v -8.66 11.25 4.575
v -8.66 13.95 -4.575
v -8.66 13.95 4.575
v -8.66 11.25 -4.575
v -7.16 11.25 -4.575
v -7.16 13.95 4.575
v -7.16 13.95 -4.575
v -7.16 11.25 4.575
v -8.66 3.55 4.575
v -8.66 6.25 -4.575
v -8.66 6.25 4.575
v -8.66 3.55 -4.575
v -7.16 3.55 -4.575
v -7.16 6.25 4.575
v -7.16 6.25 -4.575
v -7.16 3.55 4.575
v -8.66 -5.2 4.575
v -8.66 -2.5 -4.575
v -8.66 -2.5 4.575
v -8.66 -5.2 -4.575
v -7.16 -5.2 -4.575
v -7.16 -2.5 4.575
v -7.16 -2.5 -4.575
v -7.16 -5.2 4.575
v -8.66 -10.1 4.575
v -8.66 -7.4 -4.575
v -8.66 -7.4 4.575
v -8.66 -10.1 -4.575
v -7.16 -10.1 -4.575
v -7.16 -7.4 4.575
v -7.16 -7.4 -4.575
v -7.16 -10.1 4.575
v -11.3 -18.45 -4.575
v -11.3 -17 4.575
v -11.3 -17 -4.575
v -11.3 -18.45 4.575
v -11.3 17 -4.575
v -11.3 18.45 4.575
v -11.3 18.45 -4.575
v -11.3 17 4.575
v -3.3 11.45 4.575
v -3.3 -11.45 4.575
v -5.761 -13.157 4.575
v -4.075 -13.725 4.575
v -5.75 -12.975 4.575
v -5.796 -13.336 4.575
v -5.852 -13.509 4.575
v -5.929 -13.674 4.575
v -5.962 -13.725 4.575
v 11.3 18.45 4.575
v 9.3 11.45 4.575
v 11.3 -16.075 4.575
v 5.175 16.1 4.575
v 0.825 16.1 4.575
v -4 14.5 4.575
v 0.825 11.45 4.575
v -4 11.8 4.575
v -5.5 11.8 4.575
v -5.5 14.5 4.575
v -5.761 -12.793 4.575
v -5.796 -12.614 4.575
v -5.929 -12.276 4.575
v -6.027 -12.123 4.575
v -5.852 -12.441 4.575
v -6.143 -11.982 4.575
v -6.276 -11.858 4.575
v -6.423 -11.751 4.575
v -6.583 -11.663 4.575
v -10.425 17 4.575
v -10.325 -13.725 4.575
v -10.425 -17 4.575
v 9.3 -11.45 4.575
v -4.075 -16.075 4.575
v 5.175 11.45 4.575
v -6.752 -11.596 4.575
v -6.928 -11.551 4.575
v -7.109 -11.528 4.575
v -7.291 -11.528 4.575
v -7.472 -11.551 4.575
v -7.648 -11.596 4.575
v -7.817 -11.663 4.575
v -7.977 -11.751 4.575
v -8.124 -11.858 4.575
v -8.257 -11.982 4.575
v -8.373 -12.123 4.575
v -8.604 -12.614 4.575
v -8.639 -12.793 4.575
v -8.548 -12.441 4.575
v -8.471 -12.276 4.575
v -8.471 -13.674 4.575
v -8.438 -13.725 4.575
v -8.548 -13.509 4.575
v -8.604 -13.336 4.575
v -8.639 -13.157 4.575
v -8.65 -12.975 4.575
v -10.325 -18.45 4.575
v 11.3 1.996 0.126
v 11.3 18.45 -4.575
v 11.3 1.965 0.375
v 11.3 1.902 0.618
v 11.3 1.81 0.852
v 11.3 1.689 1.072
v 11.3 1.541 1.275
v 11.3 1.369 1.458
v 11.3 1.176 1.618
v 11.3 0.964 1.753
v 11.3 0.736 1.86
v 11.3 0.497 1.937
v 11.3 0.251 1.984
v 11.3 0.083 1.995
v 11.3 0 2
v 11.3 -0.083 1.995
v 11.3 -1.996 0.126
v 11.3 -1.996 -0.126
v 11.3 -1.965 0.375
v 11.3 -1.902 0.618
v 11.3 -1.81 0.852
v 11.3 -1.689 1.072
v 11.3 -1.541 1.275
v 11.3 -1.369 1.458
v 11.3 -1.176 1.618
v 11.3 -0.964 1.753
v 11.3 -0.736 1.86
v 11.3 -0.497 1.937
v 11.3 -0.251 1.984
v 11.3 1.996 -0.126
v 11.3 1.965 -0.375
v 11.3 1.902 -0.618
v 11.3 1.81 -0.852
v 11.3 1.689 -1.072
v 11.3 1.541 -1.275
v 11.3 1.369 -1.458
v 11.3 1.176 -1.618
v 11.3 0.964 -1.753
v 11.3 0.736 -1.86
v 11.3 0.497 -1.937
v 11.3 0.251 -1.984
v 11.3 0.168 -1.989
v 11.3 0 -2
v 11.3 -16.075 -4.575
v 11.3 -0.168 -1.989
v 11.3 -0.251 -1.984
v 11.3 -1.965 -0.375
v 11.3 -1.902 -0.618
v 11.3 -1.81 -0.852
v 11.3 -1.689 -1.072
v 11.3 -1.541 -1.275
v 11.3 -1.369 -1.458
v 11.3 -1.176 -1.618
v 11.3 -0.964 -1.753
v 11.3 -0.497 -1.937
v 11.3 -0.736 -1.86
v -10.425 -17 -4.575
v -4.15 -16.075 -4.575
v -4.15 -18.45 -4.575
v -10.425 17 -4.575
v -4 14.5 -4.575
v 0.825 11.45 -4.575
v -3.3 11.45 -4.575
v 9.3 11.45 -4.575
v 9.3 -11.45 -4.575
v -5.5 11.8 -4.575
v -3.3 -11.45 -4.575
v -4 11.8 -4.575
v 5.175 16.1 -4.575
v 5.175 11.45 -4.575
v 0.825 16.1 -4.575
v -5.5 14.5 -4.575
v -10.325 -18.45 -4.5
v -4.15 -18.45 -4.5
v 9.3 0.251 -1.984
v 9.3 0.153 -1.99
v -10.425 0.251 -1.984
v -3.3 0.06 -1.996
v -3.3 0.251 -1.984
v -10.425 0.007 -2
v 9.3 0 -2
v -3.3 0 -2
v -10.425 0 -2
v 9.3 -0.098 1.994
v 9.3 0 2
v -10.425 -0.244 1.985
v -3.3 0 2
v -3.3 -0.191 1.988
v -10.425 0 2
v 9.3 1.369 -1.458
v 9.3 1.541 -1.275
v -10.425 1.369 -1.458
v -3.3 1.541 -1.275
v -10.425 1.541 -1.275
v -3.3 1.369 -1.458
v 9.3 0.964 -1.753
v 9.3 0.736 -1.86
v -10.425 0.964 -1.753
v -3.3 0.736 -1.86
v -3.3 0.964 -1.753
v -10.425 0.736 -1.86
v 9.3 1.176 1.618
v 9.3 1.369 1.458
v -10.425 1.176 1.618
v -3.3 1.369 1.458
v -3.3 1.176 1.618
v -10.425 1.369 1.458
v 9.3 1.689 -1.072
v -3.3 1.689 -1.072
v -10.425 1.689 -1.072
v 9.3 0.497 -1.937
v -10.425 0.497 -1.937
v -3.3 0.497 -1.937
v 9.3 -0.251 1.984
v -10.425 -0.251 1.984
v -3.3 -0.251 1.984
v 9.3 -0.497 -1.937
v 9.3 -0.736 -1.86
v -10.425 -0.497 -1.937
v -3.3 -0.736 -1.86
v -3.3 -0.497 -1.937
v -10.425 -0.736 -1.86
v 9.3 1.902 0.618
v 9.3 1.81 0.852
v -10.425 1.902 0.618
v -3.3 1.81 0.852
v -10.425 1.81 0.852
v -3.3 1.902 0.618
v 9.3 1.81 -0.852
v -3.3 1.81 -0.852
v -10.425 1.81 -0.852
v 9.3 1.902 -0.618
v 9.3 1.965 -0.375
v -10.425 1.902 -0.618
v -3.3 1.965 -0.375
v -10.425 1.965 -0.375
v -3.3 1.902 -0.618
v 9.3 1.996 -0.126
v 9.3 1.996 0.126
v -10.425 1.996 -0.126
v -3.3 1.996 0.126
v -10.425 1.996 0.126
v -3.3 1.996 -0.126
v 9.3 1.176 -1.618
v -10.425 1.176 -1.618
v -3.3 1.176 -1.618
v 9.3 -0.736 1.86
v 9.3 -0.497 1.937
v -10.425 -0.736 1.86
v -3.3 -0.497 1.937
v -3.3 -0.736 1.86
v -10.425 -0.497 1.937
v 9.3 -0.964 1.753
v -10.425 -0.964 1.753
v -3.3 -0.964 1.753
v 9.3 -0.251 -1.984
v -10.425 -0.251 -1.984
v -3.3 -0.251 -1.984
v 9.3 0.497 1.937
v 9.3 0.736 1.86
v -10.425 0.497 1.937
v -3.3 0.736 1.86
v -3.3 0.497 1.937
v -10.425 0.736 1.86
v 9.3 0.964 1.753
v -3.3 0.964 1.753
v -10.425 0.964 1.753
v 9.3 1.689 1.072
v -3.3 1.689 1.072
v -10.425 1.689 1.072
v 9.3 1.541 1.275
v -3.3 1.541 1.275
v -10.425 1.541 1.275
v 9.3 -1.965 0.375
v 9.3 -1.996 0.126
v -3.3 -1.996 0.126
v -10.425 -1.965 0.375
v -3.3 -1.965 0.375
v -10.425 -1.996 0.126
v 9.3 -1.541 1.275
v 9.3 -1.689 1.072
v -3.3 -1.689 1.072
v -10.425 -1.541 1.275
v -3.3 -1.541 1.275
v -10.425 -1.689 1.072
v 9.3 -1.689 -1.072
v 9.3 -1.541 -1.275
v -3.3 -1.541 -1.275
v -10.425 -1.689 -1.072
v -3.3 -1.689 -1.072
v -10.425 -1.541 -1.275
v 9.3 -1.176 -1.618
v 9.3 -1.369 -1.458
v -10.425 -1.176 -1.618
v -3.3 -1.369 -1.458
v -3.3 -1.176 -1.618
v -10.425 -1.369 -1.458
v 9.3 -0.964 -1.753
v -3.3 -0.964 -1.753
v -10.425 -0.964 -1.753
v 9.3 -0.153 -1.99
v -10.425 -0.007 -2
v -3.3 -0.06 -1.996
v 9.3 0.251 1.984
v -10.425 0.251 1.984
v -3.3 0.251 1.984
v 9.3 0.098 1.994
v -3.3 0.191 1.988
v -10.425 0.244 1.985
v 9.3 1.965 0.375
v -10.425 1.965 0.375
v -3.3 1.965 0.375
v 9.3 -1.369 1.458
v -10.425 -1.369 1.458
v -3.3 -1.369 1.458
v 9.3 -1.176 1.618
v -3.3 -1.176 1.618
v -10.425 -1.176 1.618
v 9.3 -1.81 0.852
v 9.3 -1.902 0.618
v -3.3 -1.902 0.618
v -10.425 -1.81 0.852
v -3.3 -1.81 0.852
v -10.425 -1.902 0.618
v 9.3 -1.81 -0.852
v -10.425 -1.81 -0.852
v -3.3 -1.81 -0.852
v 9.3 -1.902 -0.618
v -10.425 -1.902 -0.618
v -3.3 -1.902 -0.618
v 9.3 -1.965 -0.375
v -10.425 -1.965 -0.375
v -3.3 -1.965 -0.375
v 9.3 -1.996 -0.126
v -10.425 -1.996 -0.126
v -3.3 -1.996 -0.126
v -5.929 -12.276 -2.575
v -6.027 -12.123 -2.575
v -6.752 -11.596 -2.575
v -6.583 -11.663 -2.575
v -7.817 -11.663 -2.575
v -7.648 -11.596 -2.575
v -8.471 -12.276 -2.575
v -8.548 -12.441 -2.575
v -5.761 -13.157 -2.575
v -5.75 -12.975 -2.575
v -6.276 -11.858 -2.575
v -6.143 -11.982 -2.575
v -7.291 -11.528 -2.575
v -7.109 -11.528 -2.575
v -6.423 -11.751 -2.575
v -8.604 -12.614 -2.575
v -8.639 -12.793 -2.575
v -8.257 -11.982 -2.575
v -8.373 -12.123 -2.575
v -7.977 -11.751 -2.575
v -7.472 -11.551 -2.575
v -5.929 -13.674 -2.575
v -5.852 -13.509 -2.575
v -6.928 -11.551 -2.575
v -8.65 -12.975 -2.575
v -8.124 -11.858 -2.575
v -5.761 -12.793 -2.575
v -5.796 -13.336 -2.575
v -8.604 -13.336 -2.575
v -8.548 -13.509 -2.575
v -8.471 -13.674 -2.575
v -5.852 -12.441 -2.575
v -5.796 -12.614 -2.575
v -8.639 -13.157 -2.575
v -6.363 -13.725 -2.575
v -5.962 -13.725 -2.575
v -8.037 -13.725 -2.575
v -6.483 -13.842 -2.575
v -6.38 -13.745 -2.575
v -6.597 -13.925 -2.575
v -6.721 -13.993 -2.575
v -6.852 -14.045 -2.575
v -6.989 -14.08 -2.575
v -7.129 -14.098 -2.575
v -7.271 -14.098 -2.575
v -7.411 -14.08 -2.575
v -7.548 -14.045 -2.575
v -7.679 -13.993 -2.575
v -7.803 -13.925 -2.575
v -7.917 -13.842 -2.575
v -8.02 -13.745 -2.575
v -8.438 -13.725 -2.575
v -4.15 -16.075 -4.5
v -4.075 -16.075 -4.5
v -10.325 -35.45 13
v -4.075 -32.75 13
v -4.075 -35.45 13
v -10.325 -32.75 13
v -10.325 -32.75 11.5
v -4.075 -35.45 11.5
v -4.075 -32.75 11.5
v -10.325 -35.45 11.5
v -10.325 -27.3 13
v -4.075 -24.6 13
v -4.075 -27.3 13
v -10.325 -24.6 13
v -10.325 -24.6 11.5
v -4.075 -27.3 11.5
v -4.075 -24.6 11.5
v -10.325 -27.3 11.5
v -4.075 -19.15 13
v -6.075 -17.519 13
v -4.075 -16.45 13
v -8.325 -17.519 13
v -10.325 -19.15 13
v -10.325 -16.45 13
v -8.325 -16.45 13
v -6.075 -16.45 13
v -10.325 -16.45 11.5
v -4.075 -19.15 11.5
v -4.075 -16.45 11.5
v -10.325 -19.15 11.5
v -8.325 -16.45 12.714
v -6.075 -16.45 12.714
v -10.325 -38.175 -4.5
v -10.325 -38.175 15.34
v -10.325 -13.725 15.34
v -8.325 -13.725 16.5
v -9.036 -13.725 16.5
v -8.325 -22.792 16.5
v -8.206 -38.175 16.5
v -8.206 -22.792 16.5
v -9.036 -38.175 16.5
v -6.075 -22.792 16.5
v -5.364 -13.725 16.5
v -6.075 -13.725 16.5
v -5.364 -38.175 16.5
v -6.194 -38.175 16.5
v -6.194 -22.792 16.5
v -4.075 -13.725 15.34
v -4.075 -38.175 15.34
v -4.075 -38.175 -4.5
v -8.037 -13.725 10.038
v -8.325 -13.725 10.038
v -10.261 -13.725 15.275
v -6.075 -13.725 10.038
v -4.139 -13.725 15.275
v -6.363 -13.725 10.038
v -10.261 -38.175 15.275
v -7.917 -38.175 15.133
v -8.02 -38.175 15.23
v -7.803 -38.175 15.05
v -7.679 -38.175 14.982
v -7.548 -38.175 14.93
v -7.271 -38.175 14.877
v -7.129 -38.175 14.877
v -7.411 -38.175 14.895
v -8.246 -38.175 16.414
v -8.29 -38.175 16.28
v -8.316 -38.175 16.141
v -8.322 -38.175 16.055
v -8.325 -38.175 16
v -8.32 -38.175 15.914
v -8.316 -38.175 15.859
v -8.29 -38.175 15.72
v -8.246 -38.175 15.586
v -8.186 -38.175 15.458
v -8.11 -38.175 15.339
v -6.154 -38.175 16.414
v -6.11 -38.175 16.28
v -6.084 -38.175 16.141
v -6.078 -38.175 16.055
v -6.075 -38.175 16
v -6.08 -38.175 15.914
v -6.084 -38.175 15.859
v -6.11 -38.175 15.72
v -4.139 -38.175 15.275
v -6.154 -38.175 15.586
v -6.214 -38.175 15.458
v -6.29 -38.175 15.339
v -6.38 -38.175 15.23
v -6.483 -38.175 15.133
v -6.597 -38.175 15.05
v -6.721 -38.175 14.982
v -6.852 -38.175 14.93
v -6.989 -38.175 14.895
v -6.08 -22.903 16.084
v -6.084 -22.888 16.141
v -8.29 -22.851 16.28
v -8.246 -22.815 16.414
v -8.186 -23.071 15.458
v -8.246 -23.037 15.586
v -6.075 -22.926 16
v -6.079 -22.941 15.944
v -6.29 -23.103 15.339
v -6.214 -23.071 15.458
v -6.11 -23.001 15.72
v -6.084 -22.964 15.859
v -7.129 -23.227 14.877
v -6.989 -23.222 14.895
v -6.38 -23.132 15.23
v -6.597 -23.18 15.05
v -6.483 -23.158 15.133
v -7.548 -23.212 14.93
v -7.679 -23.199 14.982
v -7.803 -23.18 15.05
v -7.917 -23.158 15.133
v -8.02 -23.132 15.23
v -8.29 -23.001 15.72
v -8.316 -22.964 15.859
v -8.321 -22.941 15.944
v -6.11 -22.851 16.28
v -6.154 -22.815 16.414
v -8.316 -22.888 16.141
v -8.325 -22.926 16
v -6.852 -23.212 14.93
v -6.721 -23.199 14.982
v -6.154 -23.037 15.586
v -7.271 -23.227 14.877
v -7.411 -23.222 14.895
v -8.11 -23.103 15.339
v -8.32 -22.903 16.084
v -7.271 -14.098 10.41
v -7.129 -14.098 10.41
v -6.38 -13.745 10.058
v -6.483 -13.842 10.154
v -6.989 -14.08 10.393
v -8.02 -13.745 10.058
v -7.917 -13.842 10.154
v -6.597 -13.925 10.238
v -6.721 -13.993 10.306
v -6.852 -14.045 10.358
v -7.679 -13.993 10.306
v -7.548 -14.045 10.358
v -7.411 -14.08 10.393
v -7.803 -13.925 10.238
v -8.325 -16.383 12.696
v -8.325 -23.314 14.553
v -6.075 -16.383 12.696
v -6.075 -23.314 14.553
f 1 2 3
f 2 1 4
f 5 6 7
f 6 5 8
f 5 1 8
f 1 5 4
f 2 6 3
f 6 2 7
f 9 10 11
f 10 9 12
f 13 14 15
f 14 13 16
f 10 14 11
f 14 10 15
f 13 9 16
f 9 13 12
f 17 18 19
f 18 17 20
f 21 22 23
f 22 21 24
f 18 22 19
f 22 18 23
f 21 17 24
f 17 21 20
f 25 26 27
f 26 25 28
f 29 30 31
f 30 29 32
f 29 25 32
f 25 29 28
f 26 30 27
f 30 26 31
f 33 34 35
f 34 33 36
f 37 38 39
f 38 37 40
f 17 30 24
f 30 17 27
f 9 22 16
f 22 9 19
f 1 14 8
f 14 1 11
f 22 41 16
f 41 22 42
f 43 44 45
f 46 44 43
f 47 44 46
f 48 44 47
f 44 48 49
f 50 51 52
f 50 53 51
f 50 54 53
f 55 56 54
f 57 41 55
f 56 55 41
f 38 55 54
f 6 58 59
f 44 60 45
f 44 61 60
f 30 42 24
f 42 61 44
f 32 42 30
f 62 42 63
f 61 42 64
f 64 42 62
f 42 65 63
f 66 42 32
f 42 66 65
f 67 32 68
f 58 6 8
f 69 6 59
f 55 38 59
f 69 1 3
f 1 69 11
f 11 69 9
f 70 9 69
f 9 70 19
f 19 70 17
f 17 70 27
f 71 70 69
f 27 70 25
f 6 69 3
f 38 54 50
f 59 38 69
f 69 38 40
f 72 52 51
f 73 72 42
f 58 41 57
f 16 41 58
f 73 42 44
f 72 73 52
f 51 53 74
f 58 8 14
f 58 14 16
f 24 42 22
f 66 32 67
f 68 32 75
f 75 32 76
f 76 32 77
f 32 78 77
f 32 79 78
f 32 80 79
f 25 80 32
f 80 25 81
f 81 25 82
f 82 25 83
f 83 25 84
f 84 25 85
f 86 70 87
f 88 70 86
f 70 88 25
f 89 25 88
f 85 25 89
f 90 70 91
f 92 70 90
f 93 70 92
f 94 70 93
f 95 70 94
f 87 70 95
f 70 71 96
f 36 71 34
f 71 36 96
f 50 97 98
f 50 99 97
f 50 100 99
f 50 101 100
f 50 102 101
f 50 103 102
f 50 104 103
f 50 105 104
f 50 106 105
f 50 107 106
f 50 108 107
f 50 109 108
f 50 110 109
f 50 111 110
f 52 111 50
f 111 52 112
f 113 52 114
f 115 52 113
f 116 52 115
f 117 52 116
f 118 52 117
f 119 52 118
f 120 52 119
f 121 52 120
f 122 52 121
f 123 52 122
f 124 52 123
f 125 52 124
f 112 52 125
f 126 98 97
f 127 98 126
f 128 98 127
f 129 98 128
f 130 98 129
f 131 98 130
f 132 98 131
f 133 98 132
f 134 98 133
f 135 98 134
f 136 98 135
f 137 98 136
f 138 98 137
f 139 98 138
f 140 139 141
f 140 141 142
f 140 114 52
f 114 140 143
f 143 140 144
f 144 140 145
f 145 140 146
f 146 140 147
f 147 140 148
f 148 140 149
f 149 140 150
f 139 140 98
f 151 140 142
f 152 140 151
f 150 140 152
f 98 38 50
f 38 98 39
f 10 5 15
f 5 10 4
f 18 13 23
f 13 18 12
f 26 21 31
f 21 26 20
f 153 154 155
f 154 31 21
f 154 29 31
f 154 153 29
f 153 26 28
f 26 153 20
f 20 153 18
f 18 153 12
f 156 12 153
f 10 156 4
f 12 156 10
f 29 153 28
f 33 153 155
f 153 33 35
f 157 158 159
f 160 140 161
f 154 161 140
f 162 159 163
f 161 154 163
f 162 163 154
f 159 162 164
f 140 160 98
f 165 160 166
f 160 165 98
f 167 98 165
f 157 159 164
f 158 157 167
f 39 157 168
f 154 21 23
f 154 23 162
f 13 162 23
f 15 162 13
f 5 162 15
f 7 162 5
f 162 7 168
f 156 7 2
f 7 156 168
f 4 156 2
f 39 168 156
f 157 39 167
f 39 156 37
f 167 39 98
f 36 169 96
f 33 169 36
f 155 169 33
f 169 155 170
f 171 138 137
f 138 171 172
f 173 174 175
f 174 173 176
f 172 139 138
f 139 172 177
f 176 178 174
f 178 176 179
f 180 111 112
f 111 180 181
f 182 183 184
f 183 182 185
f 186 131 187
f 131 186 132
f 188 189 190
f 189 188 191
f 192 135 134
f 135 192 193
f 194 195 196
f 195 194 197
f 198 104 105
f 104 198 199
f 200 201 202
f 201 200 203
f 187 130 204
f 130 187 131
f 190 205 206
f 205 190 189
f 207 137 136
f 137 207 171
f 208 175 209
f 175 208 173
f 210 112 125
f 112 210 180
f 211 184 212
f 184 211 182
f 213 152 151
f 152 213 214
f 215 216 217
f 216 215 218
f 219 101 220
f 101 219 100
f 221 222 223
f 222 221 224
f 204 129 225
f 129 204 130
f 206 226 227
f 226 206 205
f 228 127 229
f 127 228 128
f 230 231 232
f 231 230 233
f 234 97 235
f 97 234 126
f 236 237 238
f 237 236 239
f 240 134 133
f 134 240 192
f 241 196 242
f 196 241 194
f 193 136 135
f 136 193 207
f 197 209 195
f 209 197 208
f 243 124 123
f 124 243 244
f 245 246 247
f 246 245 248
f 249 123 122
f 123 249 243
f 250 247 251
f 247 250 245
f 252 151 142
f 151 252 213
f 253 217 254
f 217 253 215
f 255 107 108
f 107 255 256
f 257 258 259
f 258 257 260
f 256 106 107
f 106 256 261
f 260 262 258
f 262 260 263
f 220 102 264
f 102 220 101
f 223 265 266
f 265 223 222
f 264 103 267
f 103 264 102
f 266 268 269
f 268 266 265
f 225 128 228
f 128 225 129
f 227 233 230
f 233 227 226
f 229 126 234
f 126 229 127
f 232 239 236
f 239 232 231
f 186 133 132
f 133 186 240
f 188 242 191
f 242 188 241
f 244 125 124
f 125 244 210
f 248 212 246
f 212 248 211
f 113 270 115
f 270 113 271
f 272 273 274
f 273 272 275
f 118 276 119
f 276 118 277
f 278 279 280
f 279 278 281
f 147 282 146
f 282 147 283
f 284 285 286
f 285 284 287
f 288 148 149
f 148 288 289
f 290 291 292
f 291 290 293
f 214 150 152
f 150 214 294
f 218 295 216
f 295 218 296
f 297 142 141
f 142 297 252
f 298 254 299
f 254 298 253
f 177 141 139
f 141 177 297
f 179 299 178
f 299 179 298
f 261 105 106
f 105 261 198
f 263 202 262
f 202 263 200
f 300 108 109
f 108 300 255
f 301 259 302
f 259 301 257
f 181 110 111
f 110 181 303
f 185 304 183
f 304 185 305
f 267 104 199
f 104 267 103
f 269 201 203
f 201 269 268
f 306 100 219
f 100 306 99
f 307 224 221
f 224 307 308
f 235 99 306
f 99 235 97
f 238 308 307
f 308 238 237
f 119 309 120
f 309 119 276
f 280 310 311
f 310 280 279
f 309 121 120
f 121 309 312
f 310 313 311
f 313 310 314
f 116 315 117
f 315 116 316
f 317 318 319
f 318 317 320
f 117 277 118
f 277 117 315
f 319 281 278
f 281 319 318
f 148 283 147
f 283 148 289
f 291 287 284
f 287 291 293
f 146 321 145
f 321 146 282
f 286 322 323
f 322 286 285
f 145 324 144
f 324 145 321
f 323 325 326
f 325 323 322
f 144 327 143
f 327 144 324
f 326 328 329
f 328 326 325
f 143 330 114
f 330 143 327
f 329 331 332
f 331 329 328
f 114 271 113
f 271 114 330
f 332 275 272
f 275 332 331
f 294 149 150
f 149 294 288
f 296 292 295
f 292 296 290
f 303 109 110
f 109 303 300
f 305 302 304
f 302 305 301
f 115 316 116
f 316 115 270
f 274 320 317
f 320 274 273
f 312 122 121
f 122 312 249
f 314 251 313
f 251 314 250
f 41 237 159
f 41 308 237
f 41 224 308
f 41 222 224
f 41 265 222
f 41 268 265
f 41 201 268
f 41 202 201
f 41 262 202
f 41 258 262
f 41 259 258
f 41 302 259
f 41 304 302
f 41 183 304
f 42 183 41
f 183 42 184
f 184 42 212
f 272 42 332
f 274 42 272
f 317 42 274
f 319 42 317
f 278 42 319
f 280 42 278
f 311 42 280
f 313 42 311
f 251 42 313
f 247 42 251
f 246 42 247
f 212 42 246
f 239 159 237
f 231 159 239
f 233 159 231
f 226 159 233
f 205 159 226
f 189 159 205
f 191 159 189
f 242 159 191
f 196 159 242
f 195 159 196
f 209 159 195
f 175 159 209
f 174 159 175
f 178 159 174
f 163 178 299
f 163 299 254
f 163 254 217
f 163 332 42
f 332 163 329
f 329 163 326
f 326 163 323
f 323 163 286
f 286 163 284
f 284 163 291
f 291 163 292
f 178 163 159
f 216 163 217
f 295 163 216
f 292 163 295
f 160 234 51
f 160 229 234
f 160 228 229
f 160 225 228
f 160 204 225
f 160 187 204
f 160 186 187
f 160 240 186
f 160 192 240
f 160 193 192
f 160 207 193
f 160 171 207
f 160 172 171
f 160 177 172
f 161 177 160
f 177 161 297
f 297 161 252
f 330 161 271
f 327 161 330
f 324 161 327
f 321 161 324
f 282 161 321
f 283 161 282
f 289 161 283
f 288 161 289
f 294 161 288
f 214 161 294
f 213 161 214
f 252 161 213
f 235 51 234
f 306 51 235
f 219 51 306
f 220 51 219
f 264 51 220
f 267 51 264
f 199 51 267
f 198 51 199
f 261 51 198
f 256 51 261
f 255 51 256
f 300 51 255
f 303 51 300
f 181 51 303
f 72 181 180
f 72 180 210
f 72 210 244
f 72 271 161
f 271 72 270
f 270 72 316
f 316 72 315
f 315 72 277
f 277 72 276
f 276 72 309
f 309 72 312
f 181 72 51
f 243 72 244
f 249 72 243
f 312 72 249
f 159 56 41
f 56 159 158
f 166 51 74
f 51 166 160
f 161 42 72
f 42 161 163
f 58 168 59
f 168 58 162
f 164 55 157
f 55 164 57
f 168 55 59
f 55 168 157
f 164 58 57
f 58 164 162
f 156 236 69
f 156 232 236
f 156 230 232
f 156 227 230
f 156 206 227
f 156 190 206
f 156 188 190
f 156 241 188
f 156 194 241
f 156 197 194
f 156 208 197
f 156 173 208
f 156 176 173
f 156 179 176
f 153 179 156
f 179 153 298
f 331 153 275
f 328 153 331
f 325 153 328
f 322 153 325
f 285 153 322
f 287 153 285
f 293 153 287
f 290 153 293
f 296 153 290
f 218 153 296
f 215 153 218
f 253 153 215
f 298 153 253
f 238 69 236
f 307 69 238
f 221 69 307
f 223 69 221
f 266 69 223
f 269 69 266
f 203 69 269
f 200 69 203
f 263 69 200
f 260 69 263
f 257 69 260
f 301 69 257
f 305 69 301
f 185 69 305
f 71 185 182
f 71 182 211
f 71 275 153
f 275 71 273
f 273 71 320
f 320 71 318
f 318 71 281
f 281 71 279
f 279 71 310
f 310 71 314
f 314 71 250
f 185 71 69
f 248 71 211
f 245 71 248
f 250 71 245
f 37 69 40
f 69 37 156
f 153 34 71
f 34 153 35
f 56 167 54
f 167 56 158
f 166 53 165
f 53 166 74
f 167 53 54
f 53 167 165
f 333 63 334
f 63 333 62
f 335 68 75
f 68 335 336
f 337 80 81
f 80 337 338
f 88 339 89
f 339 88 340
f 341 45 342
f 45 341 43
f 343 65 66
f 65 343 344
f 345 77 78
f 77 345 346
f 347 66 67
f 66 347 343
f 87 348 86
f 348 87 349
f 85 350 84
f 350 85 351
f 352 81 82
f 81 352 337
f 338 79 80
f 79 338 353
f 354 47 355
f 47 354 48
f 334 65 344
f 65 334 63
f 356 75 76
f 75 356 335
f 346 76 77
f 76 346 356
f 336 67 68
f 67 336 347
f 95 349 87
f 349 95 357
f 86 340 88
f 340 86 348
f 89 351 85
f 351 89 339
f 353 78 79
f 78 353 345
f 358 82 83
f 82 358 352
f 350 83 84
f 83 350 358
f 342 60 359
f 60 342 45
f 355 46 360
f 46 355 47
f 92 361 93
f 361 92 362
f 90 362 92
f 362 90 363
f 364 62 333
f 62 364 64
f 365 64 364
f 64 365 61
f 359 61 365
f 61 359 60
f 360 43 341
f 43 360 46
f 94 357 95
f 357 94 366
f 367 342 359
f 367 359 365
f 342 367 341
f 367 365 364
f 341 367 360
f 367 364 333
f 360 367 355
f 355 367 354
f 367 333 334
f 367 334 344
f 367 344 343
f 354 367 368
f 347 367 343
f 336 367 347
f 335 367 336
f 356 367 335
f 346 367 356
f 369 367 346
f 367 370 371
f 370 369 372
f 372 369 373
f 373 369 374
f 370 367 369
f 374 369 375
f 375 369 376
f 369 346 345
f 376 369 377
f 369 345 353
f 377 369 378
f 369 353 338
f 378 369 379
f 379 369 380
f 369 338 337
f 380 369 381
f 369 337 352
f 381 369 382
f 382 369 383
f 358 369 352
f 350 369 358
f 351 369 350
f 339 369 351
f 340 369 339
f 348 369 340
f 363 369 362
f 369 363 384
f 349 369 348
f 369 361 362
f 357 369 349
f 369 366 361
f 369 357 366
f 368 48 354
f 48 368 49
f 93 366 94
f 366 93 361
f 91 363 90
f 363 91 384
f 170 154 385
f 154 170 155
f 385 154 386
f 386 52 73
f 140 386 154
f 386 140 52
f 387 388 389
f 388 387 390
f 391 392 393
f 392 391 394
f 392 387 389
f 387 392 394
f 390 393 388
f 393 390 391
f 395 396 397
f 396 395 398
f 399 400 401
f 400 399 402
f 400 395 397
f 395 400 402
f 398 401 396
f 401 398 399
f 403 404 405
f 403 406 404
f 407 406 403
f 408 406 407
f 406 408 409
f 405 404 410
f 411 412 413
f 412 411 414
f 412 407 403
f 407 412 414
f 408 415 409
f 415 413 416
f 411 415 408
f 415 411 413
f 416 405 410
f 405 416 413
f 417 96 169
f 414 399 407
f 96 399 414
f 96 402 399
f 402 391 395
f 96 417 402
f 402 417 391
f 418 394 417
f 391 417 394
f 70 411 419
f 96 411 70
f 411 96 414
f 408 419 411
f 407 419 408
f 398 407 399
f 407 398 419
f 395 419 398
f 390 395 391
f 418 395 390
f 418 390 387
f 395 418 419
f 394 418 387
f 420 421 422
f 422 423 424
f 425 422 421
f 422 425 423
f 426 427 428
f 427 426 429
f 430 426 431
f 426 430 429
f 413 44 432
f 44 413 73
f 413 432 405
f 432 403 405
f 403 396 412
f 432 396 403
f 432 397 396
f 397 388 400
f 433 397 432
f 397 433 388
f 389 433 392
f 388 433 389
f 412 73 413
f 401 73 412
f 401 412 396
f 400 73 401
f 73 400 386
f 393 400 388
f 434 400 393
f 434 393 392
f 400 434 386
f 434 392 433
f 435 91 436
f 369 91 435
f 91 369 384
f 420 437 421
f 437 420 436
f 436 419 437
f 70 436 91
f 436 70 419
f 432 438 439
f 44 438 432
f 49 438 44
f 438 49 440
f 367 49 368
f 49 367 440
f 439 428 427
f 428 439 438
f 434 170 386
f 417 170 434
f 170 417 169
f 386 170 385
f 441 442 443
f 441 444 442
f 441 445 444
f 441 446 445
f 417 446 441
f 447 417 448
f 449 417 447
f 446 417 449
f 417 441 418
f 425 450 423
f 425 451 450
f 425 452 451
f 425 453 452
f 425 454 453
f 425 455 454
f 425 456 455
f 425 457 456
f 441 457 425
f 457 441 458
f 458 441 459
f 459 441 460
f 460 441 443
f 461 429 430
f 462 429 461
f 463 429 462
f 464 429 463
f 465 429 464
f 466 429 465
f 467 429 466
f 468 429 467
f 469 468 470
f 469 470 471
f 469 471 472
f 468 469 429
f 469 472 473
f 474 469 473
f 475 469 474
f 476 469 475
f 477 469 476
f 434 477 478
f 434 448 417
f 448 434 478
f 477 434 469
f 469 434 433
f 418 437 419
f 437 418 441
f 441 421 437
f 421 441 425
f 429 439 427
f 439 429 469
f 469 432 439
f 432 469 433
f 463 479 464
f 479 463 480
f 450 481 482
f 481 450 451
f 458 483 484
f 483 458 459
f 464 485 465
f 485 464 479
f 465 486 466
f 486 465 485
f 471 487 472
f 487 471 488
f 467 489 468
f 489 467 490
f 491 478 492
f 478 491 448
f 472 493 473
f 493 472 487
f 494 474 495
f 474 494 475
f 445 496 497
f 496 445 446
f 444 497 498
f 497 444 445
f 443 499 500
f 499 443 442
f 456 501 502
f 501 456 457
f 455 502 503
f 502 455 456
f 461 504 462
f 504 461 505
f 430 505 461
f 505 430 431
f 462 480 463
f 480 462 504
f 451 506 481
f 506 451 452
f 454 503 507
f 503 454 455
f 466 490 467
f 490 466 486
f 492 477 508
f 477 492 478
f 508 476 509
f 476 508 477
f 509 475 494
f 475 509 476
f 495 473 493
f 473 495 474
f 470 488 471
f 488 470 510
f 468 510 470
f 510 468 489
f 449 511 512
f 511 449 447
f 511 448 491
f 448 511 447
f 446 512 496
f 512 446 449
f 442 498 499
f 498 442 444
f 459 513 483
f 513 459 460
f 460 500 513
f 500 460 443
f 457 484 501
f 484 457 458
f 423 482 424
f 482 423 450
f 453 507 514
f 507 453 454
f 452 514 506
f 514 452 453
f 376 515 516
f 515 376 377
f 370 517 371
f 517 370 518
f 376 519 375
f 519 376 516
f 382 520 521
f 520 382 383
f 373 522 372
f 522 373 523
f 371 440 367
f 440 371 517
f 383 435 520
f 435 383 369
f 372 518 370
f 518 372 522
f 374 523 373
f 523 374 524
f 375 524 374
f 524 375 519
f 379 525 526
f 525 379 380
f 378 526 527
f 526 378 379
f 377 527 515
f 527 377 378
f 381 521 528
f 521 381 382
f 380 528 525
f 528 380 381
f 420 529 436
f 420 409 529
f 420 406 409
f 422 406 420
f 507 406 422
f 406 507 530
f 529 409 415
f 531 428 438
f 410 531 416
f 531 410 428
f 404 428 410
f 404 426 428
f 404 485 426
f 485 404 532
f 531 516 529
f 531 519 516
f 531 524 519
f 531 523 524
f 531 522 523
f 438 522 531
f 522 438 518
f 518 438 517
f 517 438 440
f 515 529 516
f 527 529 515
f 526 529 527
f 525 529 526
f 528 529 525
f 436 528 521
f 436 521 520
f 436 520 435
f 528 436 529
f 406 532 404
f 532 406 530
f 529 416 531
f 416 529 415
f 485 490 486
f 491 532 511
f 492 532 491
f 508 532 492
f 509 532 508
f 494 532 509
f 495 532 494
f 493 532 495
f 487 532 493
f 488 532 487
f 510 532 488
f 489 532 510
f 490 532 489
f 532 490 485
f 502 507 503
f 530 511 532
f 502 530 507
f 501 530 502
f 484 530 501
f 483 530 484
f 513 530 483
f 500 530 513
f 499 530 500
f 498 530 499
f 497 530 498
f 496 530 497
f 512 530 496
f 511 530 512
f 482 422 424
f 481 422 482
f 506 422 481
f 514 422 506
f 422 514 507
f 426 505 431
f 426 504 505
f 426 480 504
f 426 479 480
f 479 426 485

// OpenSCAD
//https://github.com/EricRohlfs/UltrasonicStriker
//numbers are in mm

// Part 1 of 2 for SG90 servo powered foosball gripper
// A coat hanger is bent into two different arms
// and attached via zip ties
$fn=50;
servoHornLength = 34; //adjust if you have different horn size

hornStrapWidth = 1.5; // adjust if zip ties don't fit
hornStrapDepth = 2.7; //adjust if zip ties groves need to be deeper

//Tweak these numbers if necessary, the largest positive number is closest to coat hanger hole
servoHornZipTieChannelPlacement= [-9, -3.5, 2.75, 6.25];

coatHangerDiameterActual =2;
coatHangerDiameter = coatHangerDiameterActual +.25;
coatHangerChannel = coatHangerDiameter;
coatHangerHole = coatHangerChannel +.65;

sg90Margin = .1; //cause the hole needs to be a tad bigger than the object
sg90StickerAdjustment = .2;//stickers were getting ripped off because it was too tight
sg90Width = 12.3 + sg90Margin + sg90StickerAdjustment;
sg90Depth = 22.8 + sg90Margin;
sg90Height = 26.5; //must be greater that base_h

sg90CavityBack = -sg90Width/2; //back edge reference point for the arm and zip ties
sg90CavityBackZip = sg90CavityBack - hornStrapWidth;

//main block
base_h = 9.15;  //height
base_w = sg90Width + 10; // width
base_d = sg90Depth + 14; //46 is original; //depth

//was 7 - hornStrap, not sure why I couldn't get exact width, so just added the last number
armMountWidth = base_w/2 - sg90Width/2 - hornStrapWidth +2.75;
armMountHeight = 20;
armMountY = base_d/2 + 6;
armMountTY = -armMountY -1.5;
armTransX = sg90CavityBack -.9;

//servo horn set screw
setScrewHoleRadius = 2;//make this bigger if yor screwdrive does not fit

//The big hole in the midddle of the piece
servoCavityCenterOffset = 7;
servoCavityX = (base_w - sg90Width - servoCavityCenterOffset);
servoCavityY = 0;

module main_body(){
   cube([base_w,base_d,base_h],center=true);
    }
    
module SG90ServoCavity(){
    //place to mount sg90 servo
    translate([servoCavityX,servoCavityY,0]) cube([sg90Width,sg90Depth,sg90Height],true);
    }
    
 //decided not to go this route, but if someone wants to implement, here is a start
 module SG90ServoMountingHole(){
     sg90screwHoleOffest = 1;
     sg90screwHoleRadius = .5;
     sg90ScrewTabDepth = 4.45;
     translate([base_w/2 - sg90Width /2,sg90Depth/2 + sg90screwHoleOffest,0]) cylinder(h= base_h + 1 ,r= sg90screwHoleRadius,center=true);
    }
    
module servo_horn_screw_access(){
    //hole for servo horn screw so you can quickly swap out broken servo on competition day
    setScrewHoleHeight = base_w * 1.5;
    rotate([0,90,0]) translate([0,0,-(base_w/1.99)]) cylinder(h= setScrewHoleHeight,r= setScrewHoleRadius);
}    
   
module ServoHornZipTieChanels(){
     for(i=servoHornZipTieChannelPlacement){
         spacing = i * 1.4 ;
         translate([-(base_w * .35), -(spacing),0]) cube([hornStrapWidth, hornStrapDepth, base_h +.1],center=true);
    }
 }
 
 module ServoHornNotch(){
        translate([-(base_w/2),0,0]) cube([1.75,servoHornLength,base_h +.1],true);
     }
     
 module ArmZipTieHole (){
      rotate([0,90,0]) cube([hornStrapWidth, hornStrapDepth, base_h +.1],center=true);
     }
     
 module ArmZipTieHoles(){
     numberOfHoles = 3;//must be the same as the array size of holes (sizeof(holes) did not work
     holeDistanceFromTop = 1.5;
     //-1 for one on the left, 0 for center, 1 for one on the right
     holes = [-1,0,1];
     for(i=holes){
        y = armMountY/numberOfHoles * i;
        z = armMountHeight/2 - coatHangerDiameter -holeDistanceFromTop;
        translate([0,y,z]) ArmZipTieHole();
    }
}    
 module ArmMount(){
    translate([armTransX,armMountTY,6]){
        difference(){
            $fn=50;
            cube([armMountWidth , armMountY, armMountHeight +1],true);
            //flanges at the top so zip ties don't have a hard angle
            //todo:make dynamic
            flangex = 2;
            flangey = 0;
            flangez = armMountHeight/2 +1.75;
           translate([-flangex,flangey,flangez])rotate([0,45,0]) cube([2, armMountY +1 , 5],true);
            translate([flangex,flangey,flangez])rotate([0,-45,0]) cube([2, armMountY +1 , 5],true);
            
            //top groove for the coat hanger
            coatHangerBottomOffset = 2.5;
            rotate([90,0,0]) translate([0,armMountHeight/2 ,- base_w  -10]) cylinder(h= base_d *2,d= coatHangerChannel);
            
        //back coat hanger groove
        translate([0,-armMountTY/2,0])cylinder(h=22, d=coatHangerChannel, center=true);
            
         //back groove inside bendy angle
         translate([0,-armMountTY/2,7])rotate([-45,0,0])cube([coatHangerChannel,10,coatHangerChannel +3], center=true);
        
       translate([0,-armMountTY/2 ,8.5])rotate([-15,0,0])cube([coatHangerChannel,20,coatHangerChannel +3], center=true);
             ArmZipTieHoles();
       }
     }
}

module CoatHangerHole(){
     translate([armTransX,armMountTY/2,2]) cylinder(h=base_h, d=coatHangerHole,center=true);
    }
       
module ServoCableHole(){
    //tod: make hole for cable
    sg90CableHoleWidth = 3.75 + .6;//last number makes hole a bit wider than the cable
    sg90CableHoleDepth = 4.75;//seems like enough room, but can be changed
    translate([ servoCavityX , -.1 + sg90Depth/2 + sg90CableHoleDepth/2 ,0])
    cube([sg90CableHoleWidth, sg90CableHoleDepth,base_h + 1],true);
    }

//a bit diferent than the horn zip tie hole
//if the servo moves around a zip tie can be used to secure the 
//servo instead of screwing the sero to the piece.
 module ServoZipTieHole (){
      //translate([-5 , 13,0])
     translate([ servoCavityX - servoCavityCenterOffset -.75 , 1.7 + sg90Depth/2  ,0])
     cube([hornStrapWidth, hornStrapDepth, base_h +.5],center=true);
     }
     
module RemoveExtraPlastic(){
    sg90MountingTab = 5;
    sg90CableHoleWidth = sg90Width + servoCavityCenterOffset/2;
    sg90CableHoleDepth = 4.75;//seems like enough room, but can be changed
    translate([servoCavityX + .9, -base_d/2, 0])
    cube([sg90CableHoleWidth, sg90CableHoleDepth,base_h + 1],true);
    
    }
 
difference (){
    main_body();
    servo_horn_screw_access();
    SG90ServoCavity();
    ServoZipTieHole();
    //SG90ServoMountingHole();
    //mirror([0,-base_d,0]) SG90ServoMountingHole();
    ServoHornZipTieChanels();
    ServoHornNotch();
    ServoCableHole();
    CoatHangerHole();//todo: tie this in with arm module
    RemoveExtraPlastic();
    
}
ArmMount();

   



   
